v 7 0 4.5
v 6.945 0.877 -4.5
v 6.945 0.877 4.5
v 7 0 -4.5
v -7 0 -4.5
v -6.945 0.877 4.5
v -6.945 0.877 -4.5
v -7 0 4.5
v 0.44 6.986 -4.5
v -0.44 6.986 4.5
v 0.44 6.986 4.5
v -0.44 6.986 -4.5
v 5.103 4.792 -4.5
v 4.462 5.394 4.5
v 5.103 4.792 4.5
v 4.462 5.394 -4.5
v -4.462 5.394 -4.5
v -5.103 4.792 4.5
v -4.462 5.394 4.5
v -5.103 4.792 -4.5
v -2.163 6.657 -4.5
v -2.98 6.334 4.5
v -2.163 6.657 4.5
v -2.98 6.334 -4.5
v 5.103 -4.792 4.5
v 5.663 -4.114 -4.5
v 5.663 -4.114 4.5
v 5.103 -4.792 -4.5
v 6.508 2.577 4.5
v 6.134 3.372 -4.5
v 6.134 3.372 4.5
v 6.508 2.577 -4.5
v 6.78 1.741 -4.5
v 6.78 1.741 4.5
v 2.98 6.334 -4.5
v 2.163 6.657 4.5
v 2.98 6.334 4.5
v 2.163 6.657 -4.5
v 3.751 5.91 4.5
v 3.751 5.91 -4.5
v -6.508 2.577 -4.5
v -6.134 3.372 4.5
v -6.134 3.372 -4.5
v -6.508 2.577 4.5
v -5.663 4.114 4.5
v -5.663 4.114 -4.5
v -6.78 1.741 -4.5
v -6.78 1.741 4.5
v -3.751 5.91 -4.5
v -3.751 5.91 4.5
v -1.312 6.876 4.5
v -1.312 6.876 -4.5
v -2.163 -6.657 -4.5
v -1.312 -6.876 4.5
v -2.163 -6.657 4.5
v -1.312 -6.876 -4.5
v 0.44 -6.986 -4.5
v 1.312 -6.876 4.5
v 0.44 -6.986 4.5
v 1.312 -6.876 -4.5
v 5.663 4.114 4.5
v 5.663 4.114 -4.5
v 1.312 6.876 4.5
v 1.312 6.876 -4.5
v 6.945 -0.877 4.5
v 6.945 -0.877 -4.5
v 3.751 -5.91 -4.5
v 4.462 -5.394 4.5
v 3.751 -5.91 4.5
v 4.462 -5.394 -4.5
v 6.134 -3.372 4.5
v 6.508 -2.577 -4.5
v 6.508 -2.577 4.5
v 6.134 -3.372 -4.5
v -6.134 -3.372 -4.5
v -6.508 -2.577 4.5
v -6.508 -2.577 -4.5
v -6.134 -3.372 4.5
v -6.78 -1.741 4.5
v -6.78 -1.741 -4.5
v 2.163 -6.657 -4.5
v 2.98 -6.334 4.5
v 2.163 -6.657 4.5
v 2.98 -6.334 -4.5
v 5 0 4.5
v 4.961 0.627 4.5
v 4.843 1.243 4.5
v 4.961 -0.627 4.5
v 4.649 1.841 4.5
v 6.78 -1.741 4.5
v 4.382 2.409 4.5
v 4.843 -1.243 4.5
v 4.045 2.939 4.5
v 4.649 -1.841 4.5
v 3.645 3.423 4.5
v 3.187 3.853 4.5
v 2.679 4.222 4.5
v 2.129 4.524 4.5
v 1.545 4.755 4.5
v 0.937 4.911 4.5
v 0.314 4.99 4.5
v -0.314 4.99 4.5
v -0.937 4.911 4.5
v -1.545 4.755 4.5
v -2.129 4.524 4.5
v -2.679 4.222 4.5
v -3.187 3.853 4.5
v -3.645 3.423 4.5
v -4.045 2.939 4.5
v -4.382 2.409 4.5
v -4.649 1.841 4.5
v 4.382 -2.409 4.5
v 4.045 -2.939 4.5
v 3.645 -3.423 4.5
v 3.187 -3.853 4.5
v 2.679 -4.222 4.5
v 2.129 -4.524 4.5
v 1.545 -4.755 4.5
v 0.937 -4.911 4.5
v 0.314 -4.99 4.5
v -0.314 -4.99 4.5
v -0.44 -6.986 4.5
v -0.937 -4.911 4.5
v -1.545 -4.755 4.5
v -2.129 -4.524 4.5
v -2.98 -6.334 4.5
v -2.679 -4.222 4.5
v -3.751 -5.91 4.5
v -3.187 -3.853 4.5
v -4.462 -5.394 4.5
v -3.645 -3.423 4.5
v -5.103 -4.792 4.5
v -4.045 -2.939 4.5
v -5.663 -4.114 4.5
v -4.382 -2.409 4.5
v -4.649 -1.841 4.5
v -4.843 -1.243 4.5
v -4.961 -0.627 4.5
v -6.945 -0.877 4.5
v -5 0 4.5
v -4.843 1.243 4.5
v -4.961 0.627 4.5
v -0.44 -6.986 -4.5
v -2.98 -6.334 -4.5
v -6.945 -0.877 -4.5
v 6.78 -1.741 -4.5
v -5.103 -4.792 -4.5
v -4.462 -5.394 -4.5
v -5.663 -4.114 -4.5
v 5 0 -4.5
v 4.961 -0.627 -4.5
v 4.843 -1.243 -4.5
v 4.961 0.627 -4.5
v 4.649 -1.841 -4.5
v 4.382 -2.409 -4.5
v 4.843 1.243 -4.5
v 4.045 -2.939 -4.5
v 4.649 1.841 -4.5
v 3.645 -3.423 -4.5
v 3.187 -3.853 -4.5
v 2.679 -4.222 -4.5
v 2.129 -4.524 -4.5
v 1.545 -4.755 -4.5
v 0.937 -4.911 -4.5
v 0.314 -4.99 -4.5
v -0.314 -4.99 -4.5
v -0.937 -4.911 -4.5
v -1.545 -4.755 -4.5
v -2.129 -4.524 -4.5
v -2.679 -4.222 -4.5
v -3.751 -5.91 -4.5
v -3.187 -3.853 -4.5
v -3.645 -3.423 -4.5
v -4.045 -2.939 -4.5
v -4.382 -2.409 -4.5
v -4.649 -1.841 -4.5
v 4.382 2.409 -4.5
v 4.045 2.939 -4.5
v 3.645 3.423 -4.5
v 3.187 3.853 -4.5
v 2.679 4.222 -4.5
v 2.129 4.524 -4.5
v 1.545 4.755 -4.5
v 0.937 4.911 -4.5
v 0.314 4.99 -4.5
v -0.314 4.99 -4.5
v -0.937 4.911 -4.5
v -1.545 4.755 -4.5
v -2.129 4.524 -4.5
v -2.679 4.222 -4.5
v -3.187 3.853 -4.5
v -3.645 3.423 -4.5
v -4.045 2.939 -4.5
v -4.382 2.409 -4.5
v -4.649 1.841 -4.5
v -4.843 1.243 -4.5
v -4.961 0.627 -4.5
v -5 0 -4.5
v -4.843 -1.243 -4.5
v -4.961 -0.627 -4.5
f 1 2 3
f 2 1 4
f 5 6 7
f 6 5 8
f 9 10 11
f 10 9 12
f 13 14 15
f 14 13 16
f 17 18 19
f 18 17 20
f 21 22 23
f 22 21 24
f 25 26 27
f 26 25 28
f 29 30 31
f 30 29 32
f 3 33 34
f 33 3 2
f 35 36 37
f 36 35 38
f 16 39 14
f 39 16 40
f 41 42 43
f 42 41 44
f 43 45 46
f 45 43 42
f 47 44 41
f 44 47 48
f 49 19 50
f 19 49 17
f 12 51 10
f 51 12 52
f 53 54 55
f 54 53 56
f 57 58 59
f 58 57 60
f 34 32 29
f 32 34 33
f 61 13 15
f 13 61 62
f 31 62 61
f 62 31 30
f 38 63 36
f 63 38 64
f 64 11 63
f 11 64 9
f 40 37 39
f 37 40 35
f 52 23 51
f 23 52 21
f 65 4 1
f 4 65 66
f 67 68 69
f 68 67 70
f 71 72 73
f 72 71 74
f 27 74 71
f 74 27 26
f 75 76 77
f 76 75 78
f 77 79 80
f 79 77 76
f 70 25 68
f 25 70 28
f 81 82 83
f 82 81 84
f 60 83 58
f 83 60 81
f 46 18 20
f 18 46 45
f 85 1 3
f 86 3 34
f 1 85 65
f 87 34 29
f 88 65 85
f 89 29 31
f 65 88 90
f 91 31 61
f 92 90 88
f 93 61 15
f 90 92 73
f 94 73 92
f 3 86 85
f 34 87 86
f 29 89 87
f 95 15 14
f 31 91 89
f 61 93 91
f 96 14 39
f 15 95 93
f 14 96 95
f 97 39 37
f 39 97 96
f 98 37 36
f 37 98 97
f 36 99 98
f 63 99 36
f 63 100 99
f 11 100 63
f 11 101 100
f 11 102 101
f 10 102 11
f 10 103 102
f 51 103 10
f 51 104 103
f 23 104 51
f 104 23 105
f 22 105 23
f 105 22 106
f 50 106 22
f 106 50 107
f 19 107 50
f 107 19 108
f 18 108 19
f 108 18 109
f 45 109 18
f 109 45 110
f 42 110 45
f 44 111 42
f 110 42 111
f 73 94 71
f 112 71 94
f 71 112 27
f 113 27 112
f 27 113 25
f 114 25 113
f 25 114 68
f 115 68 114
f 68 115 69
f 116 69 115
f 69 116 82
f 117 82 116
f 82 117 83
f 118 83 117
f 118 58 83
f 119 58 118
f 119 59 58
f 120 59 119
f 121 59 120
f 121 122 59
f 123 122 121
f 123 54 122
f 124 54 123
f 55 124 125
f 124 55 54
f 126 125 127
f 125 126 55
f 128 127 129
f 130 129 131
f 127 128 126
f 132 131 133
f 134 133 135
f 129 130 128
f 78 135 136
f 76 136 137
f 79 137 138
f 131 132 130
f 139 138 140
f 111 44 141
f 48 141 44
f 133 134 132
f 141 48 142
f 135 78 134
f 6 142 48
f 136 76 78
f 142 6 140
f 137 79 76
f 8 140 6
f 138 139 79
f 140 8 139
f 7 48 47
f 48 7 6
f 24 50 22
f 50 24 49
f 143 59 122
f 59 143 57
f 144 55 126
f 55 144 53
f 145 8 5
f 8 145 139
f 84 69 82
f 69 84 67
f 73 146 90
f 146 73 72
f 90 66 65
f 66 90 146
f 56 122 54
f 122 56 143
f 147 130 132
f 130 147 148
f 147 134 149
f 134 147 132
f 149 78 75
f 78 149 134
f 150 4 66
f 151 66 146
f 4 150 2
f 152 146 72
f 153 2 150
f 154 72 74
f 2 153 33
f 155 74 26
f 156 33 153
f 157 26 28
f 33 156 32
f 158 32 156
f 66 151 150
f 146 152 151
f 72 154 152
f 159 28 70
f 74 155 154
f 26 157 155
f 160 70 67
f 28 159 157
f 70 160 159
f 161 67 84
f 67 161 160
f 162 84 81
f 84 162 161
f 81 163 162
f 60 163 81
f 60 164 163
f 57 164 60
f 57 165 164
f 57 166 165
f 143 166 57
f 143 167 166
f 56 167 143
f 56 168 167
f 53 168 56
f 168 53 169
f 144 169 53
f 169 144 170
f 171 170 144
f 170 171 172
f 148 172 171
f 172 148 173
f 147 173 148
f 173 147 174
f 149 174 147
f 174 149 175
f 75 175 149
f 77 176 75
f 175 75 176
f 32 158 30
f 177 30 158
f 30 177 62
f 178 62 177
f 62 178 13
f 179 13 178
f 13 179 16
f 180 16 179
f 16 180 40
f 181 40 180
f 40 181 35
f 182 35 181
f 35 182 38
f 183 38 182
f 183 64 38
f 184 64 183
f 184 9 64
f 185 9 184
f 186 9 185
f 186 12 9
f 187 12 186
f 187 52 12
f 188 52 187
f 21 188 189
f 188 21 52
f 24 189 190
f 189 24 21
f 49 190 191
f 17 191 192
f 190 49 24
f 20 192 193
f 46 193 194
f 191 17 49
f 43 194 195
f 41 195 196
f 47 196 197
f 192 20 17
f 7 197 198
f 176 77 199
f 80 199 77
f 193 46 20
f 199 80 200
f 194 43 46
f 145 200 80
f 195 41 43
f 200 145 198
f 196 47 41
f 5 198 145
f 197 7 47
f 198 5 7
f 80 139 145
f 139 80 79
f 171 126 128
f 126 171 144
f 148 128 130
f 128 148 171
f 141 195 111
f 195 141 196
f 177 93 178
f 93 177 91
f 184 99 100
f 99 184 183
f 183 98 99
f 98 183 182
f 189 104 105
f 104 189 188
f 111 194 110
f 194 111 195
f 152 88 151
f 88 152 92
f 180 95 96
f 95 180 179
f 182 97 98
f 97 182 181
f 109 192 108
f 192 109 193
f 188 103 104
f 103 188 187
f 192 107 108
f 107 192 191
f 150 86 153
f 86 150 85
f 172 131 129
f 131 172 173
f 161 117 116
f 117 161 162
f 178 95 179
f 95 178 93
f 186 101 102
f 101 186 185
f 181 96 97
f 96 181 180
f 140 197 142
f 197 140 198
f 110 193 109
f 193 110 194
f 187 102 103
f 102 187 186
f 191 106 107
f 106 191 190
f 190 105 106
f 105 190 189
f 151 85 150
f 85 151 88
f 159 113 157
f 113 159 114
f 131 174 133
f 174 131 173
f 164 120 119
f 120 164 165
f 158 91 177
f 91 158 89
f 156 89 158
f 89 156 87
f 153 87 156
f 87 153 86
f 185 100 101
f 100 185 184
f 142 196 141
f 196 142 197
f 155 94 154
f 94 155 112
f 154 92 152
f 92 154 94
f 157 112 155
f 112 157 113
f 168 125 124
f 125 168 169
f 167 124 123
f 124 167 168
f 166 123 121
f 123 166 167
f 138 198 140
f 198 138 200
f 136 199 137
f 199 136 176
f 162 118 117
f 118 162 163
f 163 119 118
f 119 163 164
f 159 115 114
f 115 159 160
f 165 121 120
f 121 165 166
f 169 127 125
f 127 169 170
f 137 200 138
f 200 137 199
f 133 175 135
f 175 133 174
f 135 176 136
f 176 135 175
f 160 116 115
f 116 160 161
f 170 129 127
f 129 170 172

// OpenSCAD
$fn = 50;


difference() {
	union() {
		translate(v = [0, 0, -4.5000000000]) {
			cylinder(h = 9, r = 7.0000000000);
		}
	}
	union() {
		translate(v = [0, 0, -100.0000000000]) {
			cylinder(h = 200, r = 5.0000000000);
		}
	}
}
